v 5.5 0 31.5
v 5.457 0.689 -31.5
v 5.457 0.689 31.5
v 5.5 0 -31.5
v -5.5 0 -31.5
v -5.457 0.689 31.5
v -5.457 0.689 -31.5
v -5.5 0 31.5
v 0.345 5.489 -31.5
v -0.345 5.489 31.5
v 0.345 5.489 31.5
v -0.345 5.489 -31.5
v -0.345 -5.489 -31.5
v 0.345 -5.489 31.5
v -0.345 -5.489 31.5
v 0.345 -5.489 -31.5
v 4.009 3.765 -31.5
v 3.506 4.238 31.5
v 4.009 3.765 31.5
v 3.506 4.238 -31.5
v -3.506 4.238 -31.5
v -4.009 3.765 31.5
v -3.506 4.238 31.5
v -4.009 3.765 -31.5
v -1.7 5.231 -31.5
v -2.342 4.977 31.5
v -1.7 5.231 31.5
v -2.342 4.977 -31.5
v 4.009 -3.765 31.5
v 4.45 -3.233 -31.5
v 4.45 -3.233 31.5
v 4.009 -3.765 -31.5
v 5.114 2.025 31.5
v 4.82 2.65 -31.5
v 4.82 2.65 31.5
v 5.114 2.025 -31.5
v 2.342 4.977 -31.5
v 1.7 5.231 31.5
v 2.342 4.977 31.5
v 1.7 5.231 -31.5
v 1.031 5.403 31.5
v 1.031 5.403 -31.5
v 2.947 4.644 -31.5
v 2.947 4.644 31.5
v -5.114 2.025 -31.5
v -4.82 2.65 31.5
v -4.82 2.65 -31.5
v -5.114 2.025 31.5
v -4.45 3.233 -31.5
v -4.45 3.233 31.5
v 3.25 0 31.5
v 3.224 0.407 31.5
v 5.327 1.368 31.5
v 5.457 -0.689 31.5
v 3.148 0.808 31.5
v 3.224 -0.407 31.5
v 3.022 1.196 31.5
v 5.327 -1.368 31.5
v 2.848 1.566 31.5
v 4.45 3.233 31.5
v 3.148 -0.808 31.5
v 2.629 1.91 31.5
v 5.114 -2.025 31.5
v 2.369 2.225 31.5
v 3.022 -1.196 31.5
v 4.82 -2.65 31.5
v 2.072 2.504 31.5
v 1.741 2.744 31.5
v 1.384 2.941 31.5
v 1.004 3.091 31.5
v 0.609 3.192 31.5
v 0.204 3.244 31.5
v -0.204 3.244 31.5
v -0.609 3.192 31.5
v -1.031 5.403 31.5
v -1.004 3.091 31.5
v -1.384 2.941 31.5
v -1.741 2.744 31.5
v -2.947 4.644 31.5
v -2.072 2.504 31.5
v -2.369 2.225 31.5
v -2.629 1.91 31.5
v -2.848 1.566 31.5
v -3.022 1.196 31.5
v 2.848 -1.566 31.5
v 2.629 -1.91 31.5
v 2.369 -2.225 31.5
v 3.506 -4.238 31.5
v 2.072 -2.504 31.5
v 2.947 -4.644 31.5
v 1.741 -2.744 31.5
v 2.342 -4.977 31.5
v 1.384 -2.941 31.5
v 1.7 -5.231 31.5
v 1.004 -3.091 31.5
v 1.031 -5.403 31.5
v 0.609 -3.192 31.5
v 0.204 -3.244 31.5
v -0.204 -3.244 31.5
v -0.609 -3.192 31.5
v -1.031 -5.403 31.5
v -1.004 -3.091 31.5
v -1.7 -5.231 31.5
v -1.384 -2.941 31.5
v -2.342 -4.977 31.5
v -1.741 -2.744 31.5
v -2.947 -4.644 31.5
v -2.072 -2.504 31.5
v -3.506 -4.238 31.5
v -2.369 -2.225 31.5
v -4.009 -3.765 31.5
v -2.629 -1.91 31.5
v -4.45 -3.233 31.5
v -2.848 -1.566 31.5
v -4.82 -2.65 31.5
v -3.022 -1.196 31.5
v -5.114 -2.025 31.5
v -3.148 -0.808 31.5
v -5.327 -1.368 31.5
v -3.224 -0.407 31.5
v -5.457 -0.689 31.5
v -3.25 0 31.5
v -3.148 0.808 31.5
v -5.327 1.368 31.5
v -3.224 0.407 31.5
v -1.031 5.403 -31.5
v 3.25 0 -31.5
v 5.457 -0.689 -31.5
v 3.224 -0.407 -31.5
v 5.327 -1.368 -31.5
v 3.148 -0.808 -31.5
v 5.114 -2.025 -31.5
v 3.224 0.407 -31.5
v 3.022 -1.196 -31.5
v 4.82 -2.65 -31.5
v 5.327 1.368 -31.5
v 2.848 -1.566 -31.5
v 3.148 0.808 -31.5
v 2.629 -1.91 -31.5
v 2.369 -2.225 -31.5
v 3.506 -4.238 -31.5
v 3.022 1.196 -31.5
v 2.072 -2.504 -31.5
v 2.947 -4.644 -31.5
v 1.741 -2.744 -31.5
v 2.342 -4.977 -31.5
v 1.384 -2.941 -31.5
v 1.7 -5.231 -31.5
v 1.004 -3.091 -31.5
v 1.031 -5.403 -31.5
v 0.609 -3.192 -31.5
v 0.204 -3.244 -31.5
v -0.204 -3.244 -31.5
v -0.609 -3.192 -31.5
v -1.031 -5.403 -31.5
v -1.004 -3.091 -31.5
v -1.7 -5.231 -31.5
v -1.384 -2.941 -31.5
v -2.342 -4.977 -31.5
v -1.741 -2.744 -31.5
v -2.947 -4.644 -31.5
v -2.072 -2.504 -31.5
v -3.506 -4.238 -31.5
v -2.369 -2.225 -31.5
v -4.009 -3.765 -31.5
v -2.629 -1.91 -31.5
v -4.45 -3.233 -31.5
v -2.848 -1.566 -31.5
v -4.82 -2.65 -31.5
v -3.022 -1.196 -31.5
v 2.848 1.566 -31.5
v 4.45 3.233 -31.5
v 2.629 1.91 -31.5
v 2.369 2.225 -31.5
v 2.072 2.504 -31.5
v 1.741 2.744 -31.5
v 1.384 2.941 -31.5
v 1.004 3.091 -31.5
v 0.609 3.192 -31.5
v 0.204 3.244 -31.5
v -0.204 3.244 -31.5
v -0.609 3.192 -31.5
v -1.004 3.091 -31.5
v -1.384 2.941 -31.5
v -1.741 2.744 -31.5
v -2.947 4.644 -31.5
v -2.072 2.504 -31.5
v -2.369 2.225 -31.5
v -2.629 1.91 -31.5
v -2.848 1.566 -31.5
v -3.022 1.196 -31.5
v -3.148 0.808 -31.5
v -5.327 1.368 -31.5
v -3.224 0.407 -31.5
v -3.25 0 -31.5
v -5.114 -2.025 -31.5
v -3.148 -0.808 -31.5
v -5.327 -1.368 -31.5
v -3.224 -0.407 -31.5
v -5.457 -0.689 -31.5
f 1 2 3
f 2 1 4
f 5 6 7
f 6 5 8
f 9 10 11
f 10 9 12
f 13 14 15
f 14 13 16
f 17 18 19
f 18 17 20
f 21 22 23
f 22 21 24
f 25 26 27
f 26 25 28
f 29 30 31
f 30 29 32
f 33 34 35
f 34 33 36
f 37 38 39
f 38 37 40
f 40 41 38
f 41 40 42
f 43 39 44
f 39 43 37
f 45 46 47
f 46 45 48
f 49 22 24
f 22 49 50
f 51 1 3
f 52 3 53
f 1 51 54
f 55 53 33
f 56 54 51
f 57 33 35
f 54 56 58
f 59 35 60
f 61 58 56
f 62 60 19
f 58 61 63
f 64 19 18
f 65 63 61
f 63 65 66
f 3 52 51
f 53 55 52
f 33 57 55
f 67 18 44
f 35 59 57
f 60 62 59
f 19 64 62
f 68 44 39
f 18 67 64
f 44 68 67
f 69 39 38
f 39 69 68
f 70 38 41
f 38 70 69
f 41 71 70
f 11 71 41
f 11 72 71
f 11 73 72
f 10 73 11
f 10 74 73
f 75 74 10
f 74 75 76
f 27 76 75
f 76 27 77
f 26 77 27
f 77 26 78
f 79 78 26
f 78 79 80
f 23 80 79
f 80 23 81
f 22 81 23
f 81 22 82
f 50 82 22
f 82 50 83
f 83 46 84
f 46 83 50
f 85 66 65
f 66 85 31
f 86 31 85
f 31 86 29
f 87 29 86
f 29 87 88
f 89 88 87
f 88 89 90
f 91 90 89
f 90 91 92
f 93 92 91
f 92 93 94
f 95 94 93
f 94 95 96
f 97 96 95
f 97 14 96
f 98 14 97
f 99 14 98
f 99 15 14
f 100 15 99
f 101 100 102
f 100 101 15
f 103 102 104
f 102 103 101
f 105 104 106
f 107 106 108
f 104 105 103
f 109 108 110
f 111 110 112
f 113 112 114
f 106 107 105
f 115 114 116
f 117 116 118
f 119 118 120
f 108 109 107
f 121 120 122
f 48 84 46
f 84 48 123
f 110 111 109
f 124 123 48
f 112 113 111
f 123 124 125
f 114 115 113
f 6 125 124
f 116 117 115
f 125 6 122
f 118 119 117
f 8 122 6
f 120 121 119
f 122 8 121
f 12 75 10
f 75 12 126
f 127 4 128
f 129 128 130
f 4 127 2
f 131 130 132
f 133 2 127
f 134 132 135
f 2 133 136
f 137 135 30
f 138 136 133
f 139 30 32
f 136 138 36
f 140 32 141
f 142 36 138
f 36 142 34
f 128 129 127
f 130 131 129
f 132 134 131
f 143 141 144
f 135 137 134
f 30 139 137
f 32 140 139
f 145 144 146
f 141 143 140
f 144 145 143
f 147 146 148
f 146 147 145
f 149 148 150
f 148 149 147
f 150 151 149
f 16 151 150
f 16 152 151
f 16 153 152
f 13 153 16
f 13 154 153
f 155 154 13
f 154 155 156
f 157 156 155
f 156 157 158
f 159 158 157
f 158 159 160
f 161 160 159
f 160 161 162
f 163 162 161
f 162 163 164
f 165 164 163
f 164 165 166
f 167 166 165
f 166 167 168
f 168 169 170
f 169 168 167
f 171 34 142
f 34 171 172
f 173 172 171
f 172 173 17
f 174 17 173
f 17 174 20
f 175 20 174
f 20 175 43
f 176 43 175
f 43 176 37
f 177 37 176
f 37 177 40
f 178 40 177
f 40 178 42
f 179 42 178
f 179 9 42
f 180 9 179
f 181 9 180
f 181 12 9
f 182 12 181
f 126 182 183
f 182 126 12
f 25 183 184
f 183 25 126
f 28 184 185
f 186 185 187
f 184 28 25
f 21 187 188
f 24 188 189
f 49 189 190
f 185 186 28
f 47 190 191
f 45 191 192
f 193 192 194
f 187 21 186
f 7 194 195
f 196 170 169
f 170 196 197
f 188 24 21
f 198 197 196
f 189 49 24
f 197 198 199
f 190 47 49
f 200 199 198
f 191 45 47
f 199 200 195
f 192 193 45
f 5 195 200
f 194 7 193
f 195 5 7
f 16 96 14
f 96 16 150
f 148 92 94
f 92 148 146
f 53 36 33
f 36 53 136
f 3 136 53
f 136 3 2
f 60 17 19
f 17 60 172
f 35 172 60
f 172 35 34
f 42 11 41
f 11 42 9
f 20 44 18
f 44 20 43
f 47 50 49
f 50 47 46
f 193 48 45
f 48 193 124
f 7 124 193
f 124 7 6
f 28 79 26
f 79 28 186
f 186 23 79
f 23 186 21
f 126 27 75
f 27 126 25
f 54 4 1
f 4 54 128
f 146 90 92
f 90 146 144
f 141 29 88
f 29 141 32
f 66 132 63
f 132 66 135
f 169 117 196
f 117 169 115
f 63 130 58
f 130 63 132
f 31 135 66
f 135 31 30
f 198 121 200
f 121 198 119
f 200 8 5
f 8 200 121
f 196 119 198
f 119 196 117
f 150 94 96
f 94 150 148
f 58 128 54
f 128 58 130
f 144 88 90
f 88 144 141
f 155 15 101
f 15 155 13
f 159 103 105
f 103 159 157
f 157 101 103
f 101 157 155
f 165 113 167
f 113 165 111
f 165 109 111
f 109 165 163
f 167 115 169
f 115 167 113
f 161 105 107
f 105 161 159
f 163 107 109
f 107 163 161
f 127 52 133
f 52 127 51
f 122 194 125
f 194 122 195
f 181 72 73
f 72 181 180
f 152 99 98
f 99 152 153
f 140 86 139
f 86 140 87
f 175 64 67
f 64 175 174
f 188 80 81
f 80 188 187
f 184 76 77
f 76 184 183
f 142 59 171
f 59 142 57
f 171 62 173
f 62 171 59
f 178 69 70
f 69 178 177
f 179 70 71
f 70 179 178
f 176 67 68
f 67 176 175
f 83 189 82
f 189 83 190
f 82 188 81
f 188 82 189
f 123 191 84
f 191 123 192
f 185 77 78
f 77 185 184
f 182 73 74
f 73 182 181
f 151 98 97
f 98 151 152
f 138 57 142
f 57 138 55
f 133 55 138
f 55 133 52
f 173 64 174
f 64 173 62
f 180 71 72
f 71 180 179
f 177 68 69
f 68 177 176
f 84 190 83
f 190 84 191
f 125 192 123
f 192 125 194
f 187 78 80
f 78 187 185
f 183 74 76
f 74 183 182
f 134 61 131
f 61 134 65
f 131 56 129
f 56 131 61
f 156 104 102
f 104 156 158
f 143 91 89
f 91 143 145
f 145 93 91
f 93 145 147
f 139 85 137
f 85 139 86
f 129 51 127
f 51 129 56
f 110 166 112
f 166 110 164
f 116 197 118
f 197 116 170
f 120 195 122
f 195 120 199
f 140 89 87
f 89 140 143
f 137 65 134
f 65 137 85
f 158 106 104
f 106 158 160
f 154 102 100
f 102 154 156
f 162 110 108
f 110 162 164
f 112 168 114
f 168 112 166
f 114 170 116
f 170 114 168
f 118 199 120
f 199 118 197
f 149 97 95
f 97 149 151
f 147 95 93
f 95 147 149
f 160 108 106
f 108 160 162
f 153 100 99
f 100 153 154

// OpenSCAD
$fn = 50;


difference() {
	union() {
		translate(v = [0, 0, -31.5000000000]) {
			cylinder(h = 63, r = 5.5000000000);
		}
	}
	union() {
		translate(v = [0, 0, -100.0000000000]) {
			cylinder(h = 200, r = 3.2500000000);
		}
	}
}
